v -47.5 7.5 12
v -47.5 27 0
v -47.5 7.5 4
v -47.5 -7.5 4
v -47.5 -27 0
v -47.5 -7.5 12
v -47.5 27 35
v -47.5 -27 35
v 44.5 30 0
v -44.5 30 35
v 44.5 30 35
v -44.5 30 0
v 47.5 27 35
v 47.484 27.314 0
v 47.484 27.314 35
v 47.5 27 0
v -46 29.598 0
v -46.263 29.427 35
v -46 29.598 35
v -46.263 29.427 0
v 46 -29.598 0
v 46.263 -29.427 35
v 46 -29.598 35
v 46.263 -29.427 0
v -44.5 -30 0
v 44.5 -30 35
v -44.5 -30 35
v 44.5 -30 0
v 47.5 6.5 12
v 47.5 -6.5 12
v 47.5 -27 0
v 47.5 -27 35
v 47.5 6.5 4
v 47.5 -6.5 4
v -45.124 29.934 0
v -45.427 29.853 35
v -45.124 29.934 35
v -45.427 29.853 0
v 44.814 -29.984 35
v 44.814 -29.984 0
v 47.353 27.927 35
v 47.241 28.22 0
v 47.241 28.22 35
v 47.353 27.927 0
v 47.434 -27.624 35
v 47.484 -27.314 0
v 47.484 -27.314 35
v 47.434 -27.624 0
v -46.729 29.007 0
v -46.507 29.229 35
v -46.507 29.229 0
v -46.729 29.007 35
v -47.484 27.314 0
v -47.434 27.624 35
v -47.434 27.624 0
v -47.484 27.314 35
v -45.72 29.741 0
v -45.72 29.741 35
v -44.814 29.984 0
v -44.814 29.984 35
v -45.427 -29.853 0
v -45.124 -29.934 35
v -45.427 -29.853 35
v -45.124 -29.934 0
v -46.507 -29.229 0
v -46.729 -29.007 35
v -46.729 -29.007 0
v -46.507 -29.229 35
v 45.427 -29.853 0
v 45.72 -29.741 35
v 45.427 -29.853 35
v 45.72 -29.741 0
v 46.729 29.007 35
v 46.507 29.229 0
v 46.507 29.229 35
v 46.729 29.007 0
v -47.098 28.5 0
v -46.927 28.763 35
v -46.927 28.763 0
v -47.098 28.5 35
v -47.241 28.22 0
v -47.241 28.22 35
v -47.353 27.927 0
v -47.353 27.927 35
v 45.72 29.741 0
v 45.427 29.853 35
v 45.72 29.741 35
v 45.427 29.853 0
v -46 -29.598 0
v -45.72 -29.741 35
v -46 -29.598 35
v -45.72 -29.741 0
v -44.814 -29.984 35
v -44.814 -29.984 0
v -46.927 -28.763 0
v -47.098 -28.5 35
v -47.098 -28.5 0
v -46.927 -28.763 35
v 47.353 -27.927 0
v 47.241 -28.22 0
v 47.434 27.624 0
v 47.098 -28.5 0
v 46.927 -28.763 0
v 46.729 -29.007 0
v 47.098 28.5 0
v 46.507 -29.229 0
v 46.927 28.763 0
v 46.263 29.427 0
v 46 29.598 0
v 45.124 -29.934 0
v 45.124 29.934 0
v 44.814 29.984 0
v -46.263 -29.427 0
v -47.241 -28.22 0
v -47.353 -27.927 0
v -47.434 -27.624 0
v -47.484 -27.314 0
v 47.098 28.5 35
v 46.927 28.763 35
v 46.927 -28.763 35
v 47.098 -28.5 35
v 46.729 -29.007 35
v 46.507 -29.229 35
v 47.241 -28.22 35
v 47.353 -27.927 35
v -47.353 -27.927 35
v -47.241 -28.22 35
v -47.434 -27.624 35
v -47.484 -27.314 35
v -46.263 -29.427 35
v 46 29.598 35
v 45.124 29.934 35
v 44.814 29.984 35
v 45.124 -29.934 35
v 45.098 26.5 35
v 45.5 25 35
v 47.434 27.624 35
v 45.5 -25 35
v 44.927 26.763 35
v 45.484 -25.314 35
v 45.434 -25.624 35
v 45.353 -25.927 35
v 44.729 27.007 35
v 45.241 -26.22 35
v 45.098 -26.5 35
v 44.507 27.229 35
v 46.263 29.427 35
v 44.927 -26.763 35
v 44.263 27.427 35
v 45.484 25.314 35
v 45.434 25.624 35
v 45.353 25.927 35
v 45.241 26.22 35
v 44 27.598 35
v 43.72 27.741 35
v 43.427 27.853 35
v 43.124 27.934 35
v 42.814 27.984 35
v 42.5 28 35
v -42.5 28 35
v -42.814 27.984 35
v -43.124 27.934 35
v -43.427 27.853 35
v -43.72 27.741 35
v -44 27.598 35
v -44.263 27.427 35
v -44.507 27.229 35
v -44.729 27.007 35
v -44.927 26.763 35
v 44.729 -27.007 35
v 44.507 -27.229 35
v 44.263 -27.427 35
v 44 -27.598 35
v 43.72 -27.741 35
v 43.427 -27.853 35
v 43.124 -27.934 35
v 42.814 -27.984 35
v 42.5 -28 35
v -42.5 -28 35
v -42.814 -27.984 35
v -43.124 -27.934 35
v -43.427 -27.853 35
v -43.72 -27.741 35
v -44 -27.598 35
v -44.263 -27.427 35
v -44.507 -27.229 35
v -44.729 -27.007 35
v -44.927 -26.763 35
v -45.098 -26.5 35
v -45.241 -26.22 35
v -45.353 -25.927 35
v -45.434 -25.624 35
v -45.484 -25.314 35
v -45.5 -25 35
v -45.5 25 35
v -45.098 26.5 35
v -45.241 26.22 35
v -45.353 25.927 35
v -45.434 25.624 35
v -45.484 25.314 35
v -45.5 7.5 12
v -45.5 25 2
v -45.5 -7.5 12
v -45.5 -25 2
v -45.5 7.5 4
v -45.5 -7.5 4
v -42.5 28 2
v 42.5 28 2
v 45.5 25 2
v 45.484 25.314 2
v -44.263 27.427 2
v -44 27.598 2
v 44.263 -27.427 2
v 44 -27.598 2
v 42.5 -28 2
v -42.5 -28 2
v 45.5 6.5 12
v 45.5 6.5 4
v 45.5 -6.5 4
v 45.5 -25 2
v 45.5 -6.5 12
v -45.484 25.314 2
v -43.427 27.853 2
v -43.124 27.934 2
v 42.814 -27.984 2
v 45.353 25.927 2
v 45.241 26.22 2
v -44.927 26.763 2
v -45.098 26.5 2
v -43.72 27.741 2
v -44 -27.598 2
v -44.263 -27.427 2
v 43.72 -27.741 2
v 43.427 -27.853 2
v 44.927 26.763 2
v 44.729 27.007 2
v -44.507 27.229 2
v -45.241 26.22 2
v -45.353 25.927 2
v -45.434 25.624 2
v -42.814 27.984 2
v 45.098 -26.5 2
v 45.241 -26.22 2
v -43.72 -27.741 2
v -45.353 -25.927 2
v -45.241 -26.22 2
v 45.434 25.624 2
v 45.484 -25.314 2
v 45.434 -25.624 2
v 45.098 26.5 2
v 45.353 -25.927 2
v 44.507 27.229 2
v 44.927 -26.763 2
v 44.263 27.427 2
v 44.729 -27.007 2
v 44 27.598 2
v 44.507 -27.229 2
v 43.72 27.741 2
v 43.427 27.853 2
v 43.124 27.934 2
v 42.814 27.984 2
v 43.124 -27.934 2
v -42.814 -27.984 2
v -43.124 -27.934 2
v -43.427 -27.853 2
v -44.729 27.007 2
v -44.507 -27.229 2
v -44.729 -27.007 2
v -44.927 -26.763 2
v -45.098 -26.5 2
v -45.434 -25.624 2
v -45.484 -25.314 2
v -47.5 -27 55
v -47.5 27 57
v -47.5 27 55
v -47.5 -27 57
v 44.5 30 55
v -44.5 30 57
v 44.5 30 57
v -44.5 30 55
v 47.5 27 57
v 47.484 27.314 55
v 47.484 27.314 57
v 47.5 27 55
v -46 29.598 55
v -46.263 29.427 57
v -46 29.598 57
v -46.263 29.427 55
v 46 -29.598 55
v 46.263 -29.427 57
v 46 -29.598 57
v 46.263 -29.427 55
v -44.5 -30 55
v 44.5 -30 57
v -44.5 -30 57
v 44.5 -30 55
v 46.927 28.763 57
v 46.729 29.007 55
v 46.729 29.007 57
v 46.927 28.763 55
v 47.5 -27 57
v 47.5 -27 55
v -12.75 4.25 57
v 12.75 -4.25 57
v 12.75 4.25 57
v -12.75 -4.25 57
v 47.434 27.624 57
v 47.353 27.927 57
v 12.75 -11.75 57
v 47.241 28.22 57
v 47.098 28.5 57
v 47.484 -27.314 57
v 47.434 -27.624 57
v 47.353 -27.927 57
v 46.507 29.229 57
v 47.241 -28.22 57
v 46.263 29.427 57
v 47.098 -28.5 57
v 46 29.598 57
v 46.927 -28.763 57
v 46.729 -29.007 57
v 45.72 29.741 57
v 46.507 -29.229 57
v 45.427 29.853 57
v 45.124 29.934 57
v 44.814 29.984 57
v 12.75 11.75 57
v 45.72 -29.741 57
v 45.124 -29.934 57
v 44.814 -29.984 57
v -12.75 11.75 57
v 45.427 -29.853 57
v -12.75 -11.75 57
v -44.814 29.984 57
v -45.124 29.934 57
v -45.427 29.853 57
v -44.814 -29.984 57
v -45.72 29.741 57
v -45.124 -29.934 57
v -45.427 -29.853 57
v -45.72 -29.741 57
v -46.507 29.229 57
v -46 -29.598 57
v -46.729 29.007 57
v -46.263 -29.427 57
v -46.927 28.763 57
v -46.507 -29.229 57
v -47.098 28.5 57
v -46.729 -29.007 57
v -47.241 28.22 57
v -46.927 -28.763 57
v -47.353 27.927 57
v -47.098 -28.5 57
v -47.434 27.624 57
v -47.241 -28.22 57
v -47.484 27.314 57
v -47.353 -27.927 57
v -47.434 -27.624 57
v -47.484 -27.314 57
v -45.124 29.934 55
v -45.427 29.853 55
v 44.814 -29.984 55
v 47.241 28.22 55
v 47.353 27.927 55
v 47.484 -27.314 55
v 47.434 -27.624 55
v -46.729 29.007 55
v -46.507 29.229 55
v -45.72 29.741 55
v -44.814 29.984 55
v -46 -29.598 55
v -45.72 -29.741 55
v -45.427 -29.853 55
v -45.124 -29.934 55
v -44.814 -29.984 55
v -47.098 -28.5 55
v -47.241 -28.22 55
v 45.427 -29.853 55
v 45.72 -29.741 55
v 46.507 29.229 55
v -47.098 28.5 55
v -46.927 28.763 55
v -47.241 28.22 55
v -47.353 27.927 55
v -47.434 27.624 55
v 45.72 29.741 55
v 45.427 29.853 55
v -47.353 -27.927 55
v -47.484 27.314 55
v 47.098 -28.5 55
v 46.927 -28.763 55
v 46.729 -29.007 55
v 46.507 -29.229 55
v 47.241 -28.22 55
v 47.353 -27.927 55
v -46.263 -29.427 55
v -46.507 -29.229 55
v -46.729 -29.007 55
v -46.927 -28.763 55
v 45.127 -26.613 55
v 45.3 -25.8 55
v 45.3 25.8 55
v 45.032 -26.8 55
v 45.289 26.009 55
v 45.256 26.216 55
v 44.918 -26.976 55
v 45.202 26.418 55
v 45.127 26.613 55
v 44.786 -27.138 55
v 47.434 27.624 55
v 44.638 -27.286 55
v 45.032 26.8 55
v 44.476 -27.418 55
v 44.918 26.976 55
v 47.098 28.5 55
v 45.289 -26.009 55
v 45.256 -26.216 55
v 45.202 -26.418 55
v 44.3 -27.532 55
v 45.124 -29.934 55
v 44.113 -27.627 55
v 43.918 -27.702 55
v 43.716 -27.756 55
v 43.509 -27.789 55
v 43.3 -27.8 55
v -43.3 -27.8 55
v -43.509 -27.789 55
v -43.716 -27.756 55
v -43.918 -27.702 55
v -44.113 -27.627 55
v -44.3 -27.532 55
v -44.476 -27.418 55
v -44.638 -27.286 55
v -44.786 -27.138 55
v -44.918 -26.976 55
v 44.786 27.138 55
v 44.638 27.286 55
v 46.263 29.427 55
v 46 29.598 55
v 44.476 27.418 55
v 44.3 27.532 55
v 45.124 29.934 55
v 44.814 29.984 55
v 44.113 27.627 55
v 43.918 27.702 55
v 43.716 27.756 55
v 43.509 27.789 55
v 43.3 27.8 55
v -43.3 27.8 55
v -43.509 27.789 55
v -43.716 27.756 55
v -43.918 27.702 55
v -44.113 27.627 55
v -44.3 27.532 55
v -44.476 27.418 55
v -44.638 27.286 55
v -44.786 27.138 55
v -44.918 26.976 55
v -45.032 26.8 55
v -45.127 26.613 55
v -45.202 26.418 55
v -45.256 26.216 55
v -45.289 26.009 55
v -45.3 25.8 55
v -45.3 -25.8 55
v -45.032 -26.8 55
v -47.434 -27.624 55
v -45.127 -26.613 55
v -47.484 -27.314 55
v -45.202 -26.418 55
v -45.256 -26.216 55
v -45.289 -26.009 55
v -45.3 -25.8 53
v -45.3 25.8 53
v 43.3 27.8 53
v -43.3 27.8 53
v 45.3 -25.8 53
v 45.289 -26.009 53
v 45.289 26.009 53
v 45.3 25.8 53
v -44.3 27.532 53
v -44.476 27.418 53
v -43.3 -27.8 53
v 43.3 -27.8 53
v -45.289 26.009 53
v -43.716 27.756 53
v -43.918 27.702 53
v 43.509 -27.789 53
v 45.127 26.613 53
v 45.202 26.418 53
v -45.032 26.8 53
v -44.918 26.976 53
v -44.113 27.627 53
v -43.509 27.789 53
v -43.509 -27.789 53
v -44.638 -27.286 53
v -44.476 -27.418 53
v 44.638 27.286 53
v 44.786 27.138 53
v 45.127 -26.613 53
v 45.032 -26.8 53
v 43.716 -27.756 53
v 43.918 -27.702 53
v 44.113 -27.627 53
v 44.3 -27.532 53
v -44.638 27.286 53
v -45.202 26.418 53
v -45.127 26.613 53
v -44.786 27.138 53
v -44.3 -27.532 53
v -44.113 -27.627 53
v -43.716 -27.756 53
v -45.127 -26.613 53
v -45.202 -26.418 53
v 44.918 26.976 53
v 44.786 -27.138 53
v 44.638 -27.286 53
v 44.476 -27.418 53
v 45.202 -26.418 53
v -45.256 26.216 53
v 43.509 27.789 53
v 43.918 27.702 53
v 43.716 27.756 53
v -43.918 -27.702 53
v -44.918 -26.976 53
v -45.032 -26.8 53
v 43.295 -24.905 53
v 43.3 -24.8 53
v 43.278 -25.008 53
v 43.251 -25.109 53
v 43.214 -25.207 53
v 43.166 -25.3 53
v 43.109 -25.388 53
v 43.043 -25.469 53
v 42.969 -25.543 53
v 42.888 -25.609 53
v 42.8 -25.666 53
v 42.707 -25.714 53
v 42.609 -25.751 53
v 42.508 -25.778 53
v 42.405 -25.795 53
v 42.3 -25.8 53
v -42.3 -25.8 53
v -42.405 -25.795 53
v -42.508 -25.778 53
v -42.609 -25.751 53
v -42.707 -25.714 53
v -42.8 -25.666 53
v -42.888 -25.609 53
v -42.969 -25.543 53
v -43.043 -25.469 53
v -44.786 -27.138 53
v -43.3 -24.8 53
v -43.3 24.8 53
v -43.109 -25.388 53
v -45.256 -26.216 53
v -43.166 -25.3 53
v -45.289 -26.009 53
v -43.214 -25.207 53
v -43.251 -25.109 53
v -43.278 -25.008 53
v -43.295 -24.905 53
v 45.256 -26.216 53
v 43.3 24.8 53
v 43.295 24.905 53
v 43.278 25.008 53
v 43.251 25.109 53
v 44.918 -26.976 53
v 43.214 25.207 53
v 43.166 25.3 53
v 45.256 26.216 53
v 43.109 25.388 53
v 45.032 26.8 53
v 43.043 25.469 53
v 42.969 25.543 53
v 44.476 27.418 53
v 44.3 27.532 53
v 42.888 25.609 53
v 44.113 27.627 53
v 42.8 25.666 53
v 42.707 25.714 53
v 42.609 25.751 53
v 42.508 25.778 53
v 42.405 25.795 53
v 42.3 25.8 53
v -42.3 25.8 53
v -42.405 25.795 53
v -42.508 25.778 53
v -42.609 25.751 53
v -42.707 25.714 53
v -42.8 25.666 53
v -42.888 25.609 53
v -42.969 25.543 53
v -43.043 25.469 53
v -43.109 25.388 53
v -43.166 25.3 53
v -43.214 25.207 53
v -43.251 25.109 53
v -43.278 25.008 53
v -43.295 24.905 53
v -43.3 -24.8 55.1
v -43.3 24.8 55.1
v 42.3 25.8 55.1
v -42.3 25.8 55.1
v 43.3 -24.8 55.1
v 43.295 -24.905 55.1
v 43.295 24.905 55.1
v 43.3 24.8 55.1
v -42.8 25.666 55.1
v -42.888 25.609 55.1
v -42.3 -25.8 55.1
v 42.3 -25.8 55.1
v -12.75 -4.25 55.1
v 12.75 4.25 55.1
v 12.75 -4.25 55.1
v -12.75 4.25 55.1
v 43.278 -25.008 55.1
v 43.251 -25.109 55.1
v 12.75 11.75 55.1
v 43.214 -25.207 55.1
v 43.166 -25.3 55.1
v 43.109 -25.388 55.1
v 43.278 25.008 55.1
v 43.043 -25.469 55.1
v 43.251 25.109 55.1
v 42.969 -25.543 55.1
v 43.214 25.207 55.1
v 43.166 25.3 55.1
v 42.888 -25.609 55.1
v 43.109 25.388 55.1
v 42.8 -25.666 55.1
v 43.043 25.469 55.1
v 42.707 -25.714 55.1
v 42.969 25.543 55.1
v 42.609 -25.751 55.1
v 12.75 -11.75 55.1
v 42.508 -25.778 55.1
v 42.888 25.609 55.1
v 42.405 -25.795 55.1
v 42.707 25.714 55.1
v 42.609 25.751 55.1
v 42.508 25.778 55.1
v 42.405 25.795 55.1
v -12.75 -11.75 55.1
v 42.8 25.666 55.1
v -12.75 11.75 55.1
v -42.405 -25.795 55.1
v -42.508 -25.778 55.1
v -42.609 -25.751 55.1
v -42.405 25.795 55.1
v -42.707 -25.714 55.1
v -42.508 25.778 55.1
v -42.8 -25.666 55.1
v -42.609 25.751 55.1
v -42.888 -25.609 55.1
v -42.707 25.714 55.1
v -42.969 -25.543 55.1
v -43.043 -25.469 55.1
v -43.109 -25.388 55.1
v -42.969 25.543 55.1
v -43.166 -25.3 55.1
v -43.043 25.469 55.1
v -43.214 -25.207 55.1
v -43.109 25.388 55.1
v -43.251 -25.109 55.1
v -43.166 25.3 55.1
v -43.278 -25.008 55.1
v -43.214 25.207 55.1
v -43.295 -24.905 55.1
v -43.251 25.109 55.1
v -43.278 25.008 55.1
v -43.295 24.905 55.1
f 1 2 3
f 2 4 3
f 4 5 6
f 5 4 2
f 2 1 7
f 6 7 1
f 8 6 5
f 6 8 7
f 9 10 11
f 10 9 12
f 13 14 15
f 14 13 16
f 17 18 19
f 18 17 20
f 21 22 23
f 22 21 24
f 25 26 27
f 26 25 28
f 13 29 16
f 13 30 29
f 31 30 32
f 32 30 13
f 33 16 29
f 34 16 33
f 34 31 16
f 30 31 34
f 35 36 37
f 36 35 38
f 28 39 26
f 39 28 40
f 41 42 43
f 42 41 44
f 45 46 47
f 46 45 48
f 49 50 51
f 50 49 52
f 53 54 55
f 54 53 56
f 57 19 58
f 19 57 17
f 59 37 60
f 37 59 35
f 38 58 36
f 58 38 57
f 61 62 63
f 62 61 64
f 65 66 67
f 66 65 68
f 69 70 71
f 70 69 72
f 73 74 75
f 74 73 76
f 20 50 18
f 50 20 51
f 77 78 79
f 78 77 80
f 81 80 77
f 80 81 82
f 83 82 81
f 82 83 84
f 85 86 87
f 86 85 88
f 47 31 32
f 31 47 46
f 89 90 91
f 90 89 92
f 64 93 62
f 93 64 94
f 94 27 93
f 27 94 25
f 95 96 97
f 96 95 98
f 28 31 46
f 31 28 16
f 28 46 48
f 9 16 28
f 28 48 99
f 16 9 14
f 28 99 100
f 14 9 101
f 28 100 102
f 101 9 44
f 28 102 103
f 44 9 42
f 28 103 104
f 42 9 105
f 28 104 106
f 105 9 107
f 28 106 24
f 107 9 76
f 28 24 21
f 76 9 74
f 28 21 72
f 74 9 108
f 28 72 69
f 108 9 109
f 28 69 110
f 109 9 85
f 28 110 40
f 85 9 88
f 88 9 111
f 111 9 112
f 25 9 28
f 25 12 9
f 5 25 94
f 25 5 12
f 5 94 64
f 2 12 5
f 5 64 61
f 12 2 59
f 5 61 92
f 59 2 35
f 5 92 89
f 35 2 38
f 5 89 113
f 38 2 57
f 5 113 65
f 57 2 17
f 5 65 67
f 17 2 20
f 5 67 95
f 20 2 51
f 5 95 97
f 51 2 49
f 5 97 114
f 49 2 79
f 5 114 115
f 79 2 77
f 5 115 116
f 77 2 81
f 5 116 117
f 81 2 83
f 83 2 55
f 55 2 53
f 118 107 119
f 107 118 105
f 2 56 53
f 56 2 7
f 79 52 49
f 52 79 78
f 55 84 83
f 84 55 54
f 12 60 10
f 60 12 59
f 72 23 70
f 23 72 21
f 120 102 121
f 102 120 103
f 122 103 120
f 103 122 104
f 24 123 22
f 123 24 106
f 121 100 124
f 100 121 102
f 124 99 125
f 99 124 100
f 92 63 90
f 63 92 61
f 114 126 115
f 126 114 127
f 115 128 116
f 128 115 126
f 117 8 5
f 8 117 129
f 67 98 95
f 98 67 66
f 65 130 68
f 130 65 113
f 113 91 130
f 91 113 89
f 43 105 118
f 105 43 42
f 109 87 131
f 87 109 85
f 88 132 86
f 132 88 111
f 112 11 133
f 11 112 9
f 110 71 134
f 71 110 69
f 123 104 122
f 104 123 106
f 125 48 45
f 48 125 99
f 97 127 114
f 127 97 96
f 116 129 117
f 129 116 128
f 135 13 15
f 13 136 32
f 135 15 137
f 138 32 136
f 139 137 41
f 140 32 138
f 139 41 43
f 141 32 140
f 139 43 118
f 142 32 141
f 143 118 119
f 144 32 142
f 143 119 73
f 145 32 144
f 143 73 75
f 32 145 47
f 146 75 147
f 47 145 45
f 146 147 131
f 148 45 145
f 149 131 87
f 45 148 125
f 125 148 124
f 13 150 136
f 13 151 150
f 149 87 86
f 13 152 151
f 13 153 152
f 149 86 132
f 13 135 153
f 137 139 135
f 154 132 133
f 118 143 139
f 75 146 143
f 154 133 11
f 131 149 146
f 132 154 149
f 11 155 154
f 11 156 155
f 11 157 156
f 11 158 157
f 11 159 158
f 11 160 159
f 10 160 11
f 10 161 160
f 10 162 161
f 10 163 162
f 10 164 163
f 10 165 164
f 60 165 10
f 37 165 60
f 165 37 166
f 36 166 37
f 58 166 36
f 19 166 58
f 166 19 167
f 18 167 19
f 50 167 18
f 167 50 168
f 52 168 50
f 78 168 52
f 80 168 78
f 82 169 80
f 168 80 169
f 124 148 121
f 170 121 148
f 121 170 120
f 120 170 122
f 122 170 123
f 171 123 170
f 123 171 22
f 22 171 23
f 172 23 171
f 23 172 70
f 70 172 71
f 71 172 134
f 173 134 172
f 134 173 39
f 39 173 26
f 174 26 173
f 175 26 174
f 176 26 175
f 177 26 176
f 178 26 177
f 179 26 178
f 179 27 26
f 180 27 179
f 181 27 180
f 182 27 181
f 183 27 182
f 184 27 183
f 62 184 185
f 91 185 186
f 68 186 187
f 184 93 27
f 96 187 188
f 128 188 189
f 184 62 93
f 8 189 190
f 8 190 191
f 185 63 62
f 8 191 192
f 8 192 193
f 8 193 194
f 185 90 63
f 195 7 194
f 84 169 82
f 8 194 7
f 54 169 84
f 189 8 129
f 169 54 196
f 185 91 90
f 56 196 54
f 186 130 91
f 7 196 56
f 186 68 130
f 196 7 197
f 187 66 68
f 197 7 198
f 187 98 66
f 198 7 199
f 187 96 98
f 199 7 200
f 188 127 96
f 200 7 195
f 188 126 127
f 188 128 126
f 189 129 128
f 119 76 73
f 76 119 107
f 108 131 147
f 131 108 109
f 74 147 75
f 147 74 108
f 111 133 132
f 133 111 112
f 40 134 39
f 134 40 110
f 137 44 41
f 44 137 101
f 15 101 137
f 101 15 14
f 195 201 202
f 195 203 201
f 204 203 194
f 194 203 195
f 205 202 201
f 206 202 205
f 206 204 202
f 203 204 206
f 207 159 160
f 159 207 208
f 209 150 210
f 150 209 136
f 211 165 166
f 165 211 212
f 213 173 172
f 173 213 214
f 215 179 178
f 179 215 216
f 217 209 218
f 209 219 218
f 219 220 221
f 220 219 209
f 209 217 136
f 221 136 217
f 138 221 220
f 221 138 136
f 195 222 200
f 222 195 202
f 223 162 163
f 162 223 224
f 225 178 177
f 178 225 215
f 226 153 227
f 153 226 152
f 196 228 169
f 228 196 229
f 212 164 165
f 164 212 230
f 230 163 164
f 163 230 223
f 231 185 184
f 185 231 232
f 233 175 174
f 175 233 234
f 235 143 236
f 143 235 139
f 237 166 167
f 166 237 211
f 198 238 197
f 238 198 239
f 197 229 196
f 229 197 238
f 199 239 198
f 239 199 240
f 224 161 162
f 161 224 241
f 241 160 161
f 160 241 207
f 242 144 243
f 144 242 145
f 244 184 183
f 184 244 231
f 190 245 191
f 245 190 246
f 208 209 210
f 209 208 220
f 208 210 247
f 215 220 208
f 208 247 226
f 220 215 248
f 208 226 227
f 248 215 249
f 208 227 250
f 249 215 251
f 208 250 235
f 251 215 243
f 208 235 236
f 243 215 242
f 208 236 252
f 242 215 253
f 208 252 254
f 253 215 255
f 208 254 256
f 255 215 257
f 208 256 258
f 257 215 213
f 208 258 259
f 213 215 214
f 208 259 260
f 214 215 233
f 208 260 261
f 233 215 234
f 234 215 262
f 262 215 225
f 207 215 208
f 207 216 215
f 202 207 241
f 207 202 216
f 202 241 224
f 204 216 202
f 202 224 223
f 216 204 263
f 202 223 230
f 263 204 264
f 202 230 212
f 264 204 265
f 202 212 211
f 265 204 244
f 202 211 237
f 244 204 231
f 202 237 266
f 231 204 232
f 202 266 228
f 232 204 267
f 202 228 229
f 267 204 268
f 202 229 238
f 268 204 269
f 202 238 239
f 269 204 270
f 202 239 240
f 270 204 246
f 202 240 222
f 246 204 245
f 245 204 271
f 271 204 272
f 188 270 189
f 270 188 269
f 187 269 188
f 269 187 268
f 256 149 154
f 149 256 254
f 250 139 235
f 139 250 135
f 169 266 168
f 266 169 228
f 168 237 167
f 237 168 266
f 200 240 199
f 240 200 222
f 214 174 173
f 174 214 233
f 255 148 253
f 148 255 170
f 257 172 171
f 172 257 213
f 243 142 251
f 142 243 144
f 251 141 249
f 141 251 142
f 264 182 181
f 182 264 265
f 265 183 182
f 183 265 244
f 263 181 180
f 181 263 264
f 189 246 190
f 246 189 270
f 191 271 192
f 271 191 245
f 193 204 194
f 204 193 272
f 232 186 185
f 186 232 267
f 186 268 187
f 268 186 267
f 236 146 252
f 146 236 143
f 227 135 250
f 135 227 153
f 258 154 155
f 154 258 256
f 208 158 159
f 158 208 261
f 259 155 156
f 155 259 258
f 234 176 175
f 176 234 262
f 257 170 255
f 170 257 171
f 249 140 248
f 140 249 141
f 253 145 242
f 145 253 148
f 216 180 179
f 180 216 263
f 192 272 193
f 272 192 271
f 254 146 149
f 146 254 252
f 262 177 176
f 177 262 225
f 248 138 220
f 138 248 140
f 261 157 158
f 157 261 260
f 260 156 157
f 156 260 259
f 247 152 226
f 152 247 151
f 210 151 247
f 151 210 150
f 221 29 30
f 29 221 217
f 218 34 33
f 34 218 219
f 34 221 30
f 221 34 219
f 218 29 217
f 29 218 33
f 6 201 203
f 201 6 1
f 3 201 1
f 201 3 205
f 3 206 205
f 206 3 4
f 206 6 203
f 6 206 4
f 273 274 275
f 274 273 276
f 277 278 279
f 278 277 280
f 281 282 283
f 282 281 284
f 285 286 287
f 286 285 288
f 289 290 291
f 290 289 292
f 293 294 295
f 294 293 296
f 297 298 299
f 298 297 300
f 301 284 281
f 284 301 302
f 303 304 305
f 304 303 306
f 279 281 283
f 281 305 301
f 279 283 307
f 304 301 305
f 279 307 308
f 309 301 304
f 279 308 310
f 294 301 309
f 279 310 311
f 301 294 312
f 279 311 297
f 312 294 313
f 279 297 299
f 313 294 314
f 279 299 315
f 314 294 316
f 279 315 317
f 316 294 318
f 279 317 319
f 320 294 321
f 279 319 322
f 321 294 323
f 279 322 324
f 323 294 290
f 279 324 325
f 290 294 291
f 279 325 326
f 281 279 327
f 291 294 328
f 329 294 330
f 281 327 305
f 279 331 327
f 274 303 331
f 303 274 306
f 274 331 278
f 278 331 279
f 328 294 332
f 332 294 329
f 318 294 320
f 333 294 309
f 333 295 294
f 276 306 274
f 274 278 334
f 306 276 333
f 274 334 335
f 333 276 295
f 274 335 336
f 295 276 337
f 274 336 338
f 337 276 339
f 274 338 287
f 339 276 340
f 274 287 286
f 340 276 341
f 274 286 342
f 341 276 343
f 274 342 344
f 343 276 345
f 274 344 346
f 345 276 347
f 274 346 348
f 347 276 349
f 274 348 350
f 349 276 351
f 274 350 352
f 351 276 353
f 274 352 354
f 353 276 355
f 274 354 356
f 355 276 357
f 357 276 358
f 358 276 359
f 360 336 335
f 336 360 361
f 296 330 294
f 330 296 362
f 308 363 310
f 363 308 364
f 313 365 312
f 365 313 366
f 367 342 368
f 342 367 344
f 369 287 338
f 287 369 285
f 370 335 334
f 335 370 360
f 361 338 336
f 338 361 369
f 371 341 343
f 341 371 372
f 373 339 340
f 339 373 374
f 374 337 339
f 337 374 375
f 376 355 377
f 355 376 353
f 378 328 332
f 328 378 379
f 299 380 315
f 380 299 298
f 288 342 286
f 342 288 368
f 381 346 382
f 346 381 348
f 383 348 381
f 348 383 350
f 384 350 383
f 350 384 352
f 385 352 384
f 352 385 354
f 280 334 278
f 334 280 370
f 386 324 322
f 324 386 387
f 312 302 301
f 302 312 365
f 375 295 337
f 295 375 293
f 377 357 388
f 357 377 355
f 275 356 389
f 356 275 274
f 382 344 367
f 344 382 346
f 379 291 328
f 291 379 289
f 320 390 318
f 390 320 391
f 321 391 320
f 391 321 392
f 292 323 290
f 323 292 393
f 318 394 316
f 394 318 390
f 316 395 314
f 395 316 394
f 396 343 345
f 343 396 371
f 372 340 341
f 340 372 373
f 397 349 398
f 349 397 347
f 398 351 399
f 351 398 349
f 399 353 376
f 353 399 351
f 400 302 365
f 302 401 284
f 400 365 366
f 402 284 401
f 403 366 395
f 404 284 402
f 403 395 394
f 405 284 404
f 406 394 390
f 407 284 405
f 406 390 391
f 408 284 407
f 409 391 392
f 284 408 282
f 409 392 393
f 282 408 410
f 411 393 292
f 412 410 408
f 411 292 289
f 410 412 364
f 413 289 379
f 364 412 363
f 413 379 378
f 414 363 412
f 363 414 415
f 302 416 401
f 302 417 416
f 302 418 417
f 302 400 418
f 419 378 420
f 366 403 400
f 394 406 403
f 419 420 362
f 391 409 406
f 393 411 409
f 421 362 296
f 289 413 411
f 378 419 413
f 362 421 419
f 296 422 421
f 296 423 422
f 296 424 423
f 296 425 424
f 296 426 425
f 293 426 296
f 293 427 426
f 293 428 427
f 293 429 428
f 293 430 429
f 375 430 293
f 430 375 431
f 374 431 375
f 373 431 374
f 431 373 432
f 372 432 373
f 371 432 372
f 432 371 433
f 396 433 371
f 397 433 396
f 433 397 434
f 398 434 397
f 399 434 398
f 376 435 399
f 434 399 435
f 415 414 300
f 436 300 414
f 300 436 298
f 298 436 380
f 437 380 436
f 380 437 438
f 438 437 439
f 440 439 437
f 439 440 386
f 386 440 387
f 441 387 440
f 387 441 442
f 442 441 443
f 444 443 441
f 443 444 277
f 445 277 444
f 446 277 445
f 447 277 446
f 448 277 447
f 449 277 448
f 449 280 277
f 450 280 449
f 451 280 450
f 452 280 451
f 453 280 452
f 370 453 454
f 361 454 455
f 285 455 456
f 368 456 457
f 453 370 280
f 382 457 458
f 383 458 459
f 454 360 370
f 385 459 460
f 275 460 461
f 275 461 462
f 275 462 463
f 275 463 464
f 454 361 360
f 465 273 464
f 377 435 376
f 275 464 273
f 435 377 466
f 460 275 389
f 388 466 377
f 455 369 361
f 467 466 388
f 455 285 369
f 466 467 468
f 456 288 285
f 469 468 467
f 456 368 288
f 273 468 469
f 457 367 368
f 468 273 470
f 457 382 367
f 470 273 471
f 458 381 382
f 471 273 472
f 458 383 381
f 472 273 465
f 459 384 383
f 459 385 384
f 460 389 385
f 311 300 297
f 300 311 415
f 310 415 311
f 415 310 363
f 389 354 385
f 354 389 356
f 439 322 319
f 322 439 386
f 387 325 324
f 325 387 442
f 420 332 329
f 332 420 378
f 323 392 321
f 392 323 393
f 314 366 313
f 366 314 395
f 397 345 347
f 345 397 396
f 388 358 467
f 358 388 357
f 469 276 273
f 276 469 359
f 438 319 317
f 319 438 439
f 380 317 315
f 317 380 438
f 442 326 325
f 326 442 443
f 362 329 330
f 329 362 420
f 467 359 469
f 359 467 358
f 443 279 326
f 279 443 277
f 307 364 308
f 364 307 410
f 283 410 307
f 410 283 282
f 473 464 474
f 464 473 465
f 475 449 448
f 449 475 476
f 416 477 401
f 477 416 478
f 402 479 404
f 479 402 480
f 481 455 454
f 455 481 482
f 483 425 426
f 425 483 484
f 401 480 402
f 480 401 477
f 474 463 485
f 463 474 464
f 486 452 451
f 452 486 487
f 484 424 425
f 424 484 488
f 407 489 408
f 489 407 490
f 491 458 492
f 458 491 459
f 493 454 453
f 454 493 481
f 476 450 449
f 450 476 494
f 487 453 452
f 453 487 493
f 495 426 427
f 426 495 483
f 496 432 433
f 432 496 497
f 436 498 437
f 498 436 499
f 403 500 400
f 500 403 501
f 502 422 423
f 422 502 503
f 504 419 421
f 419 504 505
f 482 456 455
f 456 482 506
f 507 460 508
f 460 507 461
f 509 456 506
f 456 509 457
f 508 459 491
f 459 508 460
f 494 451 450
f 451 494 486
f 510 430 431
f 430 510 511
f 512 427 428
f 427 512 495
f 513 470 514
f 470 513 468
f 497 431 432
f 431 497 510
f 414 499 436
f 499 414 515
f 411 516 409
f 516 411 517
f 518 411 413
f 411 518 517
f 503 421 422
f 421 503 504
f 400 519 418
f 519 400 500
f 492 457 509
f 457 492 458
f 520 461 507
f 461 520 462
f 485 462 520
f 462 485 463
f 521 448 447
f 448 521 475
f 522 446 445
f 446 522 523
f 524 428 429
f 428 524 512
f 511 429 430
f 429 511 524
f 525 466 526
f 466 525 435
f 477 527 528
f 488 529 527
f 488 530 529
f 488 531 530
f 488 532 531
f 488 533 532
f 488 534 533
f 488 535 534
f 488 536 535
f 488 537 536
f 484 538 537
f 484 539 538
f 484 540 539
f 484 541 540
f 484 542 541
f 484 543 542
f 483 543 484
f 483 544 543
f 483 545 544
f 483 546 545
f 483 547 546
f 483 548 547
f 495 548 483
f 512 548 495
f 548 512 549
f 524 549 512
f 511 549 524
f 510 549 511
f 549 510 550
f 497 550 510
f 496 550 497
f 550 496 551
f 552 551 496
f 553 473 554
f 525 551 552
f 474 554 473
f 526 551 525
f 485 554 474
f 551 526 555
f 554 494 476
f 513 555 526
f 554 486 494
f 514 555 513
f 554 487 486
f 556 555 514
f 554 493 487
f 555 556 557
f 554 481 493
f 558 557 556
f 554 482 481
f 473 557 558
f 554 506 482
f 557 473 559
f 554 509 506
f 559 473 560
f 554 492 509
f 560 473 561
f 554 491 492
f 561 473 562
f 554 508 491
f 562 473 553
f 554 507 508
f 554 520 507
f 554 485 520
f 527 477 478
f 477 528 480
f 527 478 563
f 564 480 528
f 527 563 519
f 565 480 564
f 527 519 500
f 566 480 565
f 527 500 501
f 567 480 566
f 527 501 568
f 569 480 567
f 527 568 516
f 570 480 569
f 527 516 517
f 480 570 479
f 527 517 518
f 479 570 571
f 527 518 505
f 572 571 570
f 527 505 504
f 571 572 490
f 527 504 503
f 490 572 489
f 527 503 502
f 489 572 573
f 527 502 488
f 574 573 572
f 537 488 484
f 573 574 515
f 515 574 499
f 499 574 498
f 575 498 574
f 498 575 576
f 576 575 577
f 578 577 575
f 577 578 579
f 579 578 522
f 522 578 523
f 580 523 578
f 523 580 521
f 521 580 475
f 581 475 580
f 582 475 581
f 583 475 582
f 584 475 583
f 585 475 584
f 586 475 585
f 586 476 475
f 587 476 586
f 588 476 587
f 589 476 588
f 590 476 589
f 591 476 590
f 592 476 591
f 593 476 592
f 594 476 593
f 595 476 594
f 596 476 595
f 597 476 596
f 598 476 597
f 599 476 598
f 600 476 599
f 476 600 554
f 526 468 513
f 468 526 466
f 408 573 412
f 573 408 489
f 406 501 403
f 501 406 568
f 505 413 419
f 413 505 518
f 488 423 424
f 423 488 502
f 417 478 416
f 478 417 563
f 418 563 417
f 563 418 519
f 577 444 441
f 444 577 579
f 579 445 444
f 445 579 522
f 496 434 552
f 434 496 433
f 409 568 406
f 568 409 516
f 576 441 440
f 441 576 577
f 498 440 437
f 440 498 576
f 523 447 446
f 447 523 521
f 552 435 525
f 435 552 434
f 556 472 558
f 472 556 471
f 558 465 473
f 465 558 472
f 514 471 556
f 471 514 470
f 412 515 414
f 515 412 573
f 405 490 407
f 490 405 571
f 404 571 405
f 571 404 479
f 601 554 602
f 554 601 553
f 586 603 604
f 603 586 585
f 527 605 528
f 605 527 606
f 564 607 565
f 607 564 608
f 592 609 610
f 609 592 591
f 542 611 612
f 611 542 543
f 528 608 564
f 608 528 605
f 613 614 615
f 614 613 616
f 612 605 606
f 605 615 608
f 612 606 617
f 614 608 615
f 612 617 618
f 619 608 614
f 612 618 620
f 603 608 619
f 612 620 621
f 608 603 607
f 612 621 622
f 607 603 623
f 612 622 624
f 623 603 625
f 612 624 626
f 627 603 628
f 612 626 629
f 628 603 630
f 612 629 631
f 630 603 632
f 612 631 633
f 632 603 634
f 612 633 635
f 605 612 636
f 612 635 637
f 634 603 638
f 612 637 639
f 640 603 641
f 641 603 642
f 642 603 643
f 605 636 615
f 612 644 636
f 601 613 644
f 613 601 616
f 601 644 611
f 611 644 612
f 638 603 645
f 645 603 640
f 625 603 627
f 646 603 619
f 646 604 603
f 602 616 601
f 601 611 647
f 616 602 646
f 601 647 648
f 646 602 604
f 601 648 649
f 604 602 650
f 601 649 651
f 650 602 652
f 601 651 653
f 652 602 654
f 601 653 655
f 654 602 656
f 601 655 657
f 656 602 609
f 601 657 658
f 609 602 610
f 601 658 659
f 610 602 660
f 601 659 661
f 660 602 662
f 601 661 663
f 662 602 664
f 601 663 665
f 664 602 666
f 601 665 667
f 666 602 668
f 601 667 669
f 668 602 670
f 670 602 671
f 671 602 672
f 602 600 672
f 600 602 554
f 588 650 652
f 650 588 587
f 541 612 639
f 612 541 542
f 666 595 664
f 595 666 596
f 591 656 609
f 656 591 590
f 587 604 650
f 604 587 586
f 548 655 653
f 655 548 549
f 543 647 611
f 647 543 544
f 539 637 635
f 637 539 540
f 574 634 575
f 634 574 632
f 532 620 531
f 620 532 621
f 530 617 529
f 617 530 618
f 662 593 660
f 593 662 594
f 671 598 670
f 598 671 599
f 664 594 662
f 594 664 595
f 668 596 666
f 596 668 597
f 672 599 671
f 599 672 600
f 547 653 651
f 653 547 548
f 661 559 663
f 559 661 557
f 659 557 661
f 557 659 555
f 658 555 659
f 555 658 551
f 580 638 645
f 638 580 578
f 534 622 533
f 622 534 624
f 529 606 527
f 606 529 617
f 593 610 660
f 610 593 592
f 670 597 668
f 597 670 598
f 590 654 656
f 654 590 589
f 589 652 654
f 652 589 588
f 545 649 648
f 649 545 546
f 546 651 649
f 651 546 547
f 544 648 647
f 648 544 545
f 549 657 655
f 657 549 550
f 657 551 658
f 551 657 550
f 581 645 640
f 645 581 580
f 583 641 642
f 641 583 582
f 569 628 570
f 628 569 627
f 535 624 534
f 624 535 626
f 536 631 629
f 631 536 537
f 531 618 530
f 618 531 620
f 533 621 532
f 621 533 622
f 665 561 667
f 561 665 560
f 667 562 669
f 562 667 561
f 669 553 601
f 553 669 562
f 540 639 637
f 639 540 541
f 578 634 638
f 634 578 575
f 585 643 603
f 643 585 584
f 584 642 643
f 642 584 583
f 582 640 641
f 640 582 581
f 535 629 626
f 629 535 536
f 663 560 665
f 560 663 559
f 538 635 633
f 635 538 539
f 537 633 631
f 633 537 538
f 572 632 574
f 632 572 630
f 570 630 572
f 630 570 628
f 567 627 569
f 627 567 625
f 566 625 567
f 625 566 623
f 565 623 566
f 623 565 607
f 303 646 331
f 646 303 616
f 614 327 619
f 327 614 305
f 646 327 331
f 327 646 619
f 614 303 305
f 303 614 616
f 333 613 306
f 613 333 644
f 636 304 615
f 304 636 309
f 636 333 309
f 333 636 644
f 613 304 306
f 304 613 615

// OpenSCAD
// --- GreenTracker Case v1.0 ---

/* [Dimensioni Generali Scatola] */
lunghezza = 95;  // Spazio per NodeMCU e Multiplexer
larghezza = 60;
altezza = 35;
spessore_muro = 2;

/* [Tolleranze e Smussi] */
tolleranza_incastro = 0.4; // Tolleranza per la stampa 3D del coperchio
raggio_angoli = 3;         // Arrotondamento degli angoli esterni
$fn = 60;                  // Risoluzione curve

/* [Display OLED 0.91"] */
oled_finestra_l = 25.5; // Area visibile dello schermo
oled_finestra_h = 7.5;
distanza_tra_oled = 16; // Distanza dal centro di un display all'altro

/* [Connessioni] */
usb_l = 13;
usb_h = 8;
foro_cavi_l = 15;
foro_cavi_h = 8;

// --- MODULI BASE ---

module scatola_arrotondata(l, w, h, r) {
    hull() {
        translate([-l/2+r, -w/2+r, 0]) cylinder(r=r, h=h);
        translate([ l/2-r, -w/2+r, 0]) cylinder(r=r, h=h);
        translate([-l/2+r,  w/2-r, 0]) cylinder(r=r, h=h);
        translate([ l/2-r,  w/2-r, 0]) cylinder(r=r, h=h);
    }
}

module case_base() {
    difference() {
        // Corpo esterno
        scatola_arrotondata(lunghezza, larghezza, altezza, raggio_angoli);
        
        // Scavo interno
        translate([0, 0, spessore_muro])
            scatola_arrotondata(lunghezza - spessore_muro*2, larghezza - spessore_muro*2, altezza, raggio_angoli);
            
        // Foro USB (centrato su un lato corto)
        translate([lunghezza/2, 0, spessore_muro + usb_h/2 + 2])
            cube([spessore_muro*4, usb_l, usb_h], center=true);
            
        // Foro uscita cavi sensore/i (lato opposto)
        translate([-lunghezza/2, 0, spessore_muro + foro_cavi_h/2 + 2])
            cube([spessore_muro*4, foro_cavi_l, foro_cavi_h], center=true);
    }
}

module coperchio() {
    difference() {
        union() {
            // Piano del coperchio
            scatola_arrotondata(lunghezza, larghezza, spessore_muro, raggio_angoli);
            
            // Labbro di incastro interno
            translate([0, 0, -spessore_muro])
                scatola_arrotondata(
                    lunghezza - spessore_muro*2 - tolleranza_incastro, 
                    larghezza - spessore_muro*2 - tolleranza_incastro, 
                    spessore_muro, 
                    raggio_angoli - 1
                );
        }
        
        // Scavo per alleggerire il labbro interno
        translate([0, 0, -spessore_muro - 0.1])
            scatola_arrotondata(
                lunghezza - spessore_muro*4 - tolleranza_incastro, 
                larghezza - spessore_muro*4 - tolleranza_incastro, 
                spessore_muro + 0.2, 
                raggio_angoli - 2
            );

        // Finestra OLED 1 (Superiore) - Posizione Z corretta per trapassare il tetto
        translate([0, distanza_tra_oled/2, 0])
            cube([oled_finestra_l, oled_finestra_h, 20], center=true);
            
        // Finestra OLED 2 (Inferiore) - Posizione Z corretta per trapassare il tetto
        translate([0, -distanza_tra_oled/2, 0])
            cube([oled_finestra_l, oled_finestra_h, 20], center=true);
    }
}

// --- ASSEMBLAGGIO CON COLORI ---

// Base della scatola in grigio scuro
color([0.25, 0.25, 0.28]) 
    case_base();

// Coperchio in verde (sollevato di 20mm in vista esplosa)
color([0.2, 0.7, 0.3]) 
    translate([0, 0, altezza + 20]) 
        coperchio();
